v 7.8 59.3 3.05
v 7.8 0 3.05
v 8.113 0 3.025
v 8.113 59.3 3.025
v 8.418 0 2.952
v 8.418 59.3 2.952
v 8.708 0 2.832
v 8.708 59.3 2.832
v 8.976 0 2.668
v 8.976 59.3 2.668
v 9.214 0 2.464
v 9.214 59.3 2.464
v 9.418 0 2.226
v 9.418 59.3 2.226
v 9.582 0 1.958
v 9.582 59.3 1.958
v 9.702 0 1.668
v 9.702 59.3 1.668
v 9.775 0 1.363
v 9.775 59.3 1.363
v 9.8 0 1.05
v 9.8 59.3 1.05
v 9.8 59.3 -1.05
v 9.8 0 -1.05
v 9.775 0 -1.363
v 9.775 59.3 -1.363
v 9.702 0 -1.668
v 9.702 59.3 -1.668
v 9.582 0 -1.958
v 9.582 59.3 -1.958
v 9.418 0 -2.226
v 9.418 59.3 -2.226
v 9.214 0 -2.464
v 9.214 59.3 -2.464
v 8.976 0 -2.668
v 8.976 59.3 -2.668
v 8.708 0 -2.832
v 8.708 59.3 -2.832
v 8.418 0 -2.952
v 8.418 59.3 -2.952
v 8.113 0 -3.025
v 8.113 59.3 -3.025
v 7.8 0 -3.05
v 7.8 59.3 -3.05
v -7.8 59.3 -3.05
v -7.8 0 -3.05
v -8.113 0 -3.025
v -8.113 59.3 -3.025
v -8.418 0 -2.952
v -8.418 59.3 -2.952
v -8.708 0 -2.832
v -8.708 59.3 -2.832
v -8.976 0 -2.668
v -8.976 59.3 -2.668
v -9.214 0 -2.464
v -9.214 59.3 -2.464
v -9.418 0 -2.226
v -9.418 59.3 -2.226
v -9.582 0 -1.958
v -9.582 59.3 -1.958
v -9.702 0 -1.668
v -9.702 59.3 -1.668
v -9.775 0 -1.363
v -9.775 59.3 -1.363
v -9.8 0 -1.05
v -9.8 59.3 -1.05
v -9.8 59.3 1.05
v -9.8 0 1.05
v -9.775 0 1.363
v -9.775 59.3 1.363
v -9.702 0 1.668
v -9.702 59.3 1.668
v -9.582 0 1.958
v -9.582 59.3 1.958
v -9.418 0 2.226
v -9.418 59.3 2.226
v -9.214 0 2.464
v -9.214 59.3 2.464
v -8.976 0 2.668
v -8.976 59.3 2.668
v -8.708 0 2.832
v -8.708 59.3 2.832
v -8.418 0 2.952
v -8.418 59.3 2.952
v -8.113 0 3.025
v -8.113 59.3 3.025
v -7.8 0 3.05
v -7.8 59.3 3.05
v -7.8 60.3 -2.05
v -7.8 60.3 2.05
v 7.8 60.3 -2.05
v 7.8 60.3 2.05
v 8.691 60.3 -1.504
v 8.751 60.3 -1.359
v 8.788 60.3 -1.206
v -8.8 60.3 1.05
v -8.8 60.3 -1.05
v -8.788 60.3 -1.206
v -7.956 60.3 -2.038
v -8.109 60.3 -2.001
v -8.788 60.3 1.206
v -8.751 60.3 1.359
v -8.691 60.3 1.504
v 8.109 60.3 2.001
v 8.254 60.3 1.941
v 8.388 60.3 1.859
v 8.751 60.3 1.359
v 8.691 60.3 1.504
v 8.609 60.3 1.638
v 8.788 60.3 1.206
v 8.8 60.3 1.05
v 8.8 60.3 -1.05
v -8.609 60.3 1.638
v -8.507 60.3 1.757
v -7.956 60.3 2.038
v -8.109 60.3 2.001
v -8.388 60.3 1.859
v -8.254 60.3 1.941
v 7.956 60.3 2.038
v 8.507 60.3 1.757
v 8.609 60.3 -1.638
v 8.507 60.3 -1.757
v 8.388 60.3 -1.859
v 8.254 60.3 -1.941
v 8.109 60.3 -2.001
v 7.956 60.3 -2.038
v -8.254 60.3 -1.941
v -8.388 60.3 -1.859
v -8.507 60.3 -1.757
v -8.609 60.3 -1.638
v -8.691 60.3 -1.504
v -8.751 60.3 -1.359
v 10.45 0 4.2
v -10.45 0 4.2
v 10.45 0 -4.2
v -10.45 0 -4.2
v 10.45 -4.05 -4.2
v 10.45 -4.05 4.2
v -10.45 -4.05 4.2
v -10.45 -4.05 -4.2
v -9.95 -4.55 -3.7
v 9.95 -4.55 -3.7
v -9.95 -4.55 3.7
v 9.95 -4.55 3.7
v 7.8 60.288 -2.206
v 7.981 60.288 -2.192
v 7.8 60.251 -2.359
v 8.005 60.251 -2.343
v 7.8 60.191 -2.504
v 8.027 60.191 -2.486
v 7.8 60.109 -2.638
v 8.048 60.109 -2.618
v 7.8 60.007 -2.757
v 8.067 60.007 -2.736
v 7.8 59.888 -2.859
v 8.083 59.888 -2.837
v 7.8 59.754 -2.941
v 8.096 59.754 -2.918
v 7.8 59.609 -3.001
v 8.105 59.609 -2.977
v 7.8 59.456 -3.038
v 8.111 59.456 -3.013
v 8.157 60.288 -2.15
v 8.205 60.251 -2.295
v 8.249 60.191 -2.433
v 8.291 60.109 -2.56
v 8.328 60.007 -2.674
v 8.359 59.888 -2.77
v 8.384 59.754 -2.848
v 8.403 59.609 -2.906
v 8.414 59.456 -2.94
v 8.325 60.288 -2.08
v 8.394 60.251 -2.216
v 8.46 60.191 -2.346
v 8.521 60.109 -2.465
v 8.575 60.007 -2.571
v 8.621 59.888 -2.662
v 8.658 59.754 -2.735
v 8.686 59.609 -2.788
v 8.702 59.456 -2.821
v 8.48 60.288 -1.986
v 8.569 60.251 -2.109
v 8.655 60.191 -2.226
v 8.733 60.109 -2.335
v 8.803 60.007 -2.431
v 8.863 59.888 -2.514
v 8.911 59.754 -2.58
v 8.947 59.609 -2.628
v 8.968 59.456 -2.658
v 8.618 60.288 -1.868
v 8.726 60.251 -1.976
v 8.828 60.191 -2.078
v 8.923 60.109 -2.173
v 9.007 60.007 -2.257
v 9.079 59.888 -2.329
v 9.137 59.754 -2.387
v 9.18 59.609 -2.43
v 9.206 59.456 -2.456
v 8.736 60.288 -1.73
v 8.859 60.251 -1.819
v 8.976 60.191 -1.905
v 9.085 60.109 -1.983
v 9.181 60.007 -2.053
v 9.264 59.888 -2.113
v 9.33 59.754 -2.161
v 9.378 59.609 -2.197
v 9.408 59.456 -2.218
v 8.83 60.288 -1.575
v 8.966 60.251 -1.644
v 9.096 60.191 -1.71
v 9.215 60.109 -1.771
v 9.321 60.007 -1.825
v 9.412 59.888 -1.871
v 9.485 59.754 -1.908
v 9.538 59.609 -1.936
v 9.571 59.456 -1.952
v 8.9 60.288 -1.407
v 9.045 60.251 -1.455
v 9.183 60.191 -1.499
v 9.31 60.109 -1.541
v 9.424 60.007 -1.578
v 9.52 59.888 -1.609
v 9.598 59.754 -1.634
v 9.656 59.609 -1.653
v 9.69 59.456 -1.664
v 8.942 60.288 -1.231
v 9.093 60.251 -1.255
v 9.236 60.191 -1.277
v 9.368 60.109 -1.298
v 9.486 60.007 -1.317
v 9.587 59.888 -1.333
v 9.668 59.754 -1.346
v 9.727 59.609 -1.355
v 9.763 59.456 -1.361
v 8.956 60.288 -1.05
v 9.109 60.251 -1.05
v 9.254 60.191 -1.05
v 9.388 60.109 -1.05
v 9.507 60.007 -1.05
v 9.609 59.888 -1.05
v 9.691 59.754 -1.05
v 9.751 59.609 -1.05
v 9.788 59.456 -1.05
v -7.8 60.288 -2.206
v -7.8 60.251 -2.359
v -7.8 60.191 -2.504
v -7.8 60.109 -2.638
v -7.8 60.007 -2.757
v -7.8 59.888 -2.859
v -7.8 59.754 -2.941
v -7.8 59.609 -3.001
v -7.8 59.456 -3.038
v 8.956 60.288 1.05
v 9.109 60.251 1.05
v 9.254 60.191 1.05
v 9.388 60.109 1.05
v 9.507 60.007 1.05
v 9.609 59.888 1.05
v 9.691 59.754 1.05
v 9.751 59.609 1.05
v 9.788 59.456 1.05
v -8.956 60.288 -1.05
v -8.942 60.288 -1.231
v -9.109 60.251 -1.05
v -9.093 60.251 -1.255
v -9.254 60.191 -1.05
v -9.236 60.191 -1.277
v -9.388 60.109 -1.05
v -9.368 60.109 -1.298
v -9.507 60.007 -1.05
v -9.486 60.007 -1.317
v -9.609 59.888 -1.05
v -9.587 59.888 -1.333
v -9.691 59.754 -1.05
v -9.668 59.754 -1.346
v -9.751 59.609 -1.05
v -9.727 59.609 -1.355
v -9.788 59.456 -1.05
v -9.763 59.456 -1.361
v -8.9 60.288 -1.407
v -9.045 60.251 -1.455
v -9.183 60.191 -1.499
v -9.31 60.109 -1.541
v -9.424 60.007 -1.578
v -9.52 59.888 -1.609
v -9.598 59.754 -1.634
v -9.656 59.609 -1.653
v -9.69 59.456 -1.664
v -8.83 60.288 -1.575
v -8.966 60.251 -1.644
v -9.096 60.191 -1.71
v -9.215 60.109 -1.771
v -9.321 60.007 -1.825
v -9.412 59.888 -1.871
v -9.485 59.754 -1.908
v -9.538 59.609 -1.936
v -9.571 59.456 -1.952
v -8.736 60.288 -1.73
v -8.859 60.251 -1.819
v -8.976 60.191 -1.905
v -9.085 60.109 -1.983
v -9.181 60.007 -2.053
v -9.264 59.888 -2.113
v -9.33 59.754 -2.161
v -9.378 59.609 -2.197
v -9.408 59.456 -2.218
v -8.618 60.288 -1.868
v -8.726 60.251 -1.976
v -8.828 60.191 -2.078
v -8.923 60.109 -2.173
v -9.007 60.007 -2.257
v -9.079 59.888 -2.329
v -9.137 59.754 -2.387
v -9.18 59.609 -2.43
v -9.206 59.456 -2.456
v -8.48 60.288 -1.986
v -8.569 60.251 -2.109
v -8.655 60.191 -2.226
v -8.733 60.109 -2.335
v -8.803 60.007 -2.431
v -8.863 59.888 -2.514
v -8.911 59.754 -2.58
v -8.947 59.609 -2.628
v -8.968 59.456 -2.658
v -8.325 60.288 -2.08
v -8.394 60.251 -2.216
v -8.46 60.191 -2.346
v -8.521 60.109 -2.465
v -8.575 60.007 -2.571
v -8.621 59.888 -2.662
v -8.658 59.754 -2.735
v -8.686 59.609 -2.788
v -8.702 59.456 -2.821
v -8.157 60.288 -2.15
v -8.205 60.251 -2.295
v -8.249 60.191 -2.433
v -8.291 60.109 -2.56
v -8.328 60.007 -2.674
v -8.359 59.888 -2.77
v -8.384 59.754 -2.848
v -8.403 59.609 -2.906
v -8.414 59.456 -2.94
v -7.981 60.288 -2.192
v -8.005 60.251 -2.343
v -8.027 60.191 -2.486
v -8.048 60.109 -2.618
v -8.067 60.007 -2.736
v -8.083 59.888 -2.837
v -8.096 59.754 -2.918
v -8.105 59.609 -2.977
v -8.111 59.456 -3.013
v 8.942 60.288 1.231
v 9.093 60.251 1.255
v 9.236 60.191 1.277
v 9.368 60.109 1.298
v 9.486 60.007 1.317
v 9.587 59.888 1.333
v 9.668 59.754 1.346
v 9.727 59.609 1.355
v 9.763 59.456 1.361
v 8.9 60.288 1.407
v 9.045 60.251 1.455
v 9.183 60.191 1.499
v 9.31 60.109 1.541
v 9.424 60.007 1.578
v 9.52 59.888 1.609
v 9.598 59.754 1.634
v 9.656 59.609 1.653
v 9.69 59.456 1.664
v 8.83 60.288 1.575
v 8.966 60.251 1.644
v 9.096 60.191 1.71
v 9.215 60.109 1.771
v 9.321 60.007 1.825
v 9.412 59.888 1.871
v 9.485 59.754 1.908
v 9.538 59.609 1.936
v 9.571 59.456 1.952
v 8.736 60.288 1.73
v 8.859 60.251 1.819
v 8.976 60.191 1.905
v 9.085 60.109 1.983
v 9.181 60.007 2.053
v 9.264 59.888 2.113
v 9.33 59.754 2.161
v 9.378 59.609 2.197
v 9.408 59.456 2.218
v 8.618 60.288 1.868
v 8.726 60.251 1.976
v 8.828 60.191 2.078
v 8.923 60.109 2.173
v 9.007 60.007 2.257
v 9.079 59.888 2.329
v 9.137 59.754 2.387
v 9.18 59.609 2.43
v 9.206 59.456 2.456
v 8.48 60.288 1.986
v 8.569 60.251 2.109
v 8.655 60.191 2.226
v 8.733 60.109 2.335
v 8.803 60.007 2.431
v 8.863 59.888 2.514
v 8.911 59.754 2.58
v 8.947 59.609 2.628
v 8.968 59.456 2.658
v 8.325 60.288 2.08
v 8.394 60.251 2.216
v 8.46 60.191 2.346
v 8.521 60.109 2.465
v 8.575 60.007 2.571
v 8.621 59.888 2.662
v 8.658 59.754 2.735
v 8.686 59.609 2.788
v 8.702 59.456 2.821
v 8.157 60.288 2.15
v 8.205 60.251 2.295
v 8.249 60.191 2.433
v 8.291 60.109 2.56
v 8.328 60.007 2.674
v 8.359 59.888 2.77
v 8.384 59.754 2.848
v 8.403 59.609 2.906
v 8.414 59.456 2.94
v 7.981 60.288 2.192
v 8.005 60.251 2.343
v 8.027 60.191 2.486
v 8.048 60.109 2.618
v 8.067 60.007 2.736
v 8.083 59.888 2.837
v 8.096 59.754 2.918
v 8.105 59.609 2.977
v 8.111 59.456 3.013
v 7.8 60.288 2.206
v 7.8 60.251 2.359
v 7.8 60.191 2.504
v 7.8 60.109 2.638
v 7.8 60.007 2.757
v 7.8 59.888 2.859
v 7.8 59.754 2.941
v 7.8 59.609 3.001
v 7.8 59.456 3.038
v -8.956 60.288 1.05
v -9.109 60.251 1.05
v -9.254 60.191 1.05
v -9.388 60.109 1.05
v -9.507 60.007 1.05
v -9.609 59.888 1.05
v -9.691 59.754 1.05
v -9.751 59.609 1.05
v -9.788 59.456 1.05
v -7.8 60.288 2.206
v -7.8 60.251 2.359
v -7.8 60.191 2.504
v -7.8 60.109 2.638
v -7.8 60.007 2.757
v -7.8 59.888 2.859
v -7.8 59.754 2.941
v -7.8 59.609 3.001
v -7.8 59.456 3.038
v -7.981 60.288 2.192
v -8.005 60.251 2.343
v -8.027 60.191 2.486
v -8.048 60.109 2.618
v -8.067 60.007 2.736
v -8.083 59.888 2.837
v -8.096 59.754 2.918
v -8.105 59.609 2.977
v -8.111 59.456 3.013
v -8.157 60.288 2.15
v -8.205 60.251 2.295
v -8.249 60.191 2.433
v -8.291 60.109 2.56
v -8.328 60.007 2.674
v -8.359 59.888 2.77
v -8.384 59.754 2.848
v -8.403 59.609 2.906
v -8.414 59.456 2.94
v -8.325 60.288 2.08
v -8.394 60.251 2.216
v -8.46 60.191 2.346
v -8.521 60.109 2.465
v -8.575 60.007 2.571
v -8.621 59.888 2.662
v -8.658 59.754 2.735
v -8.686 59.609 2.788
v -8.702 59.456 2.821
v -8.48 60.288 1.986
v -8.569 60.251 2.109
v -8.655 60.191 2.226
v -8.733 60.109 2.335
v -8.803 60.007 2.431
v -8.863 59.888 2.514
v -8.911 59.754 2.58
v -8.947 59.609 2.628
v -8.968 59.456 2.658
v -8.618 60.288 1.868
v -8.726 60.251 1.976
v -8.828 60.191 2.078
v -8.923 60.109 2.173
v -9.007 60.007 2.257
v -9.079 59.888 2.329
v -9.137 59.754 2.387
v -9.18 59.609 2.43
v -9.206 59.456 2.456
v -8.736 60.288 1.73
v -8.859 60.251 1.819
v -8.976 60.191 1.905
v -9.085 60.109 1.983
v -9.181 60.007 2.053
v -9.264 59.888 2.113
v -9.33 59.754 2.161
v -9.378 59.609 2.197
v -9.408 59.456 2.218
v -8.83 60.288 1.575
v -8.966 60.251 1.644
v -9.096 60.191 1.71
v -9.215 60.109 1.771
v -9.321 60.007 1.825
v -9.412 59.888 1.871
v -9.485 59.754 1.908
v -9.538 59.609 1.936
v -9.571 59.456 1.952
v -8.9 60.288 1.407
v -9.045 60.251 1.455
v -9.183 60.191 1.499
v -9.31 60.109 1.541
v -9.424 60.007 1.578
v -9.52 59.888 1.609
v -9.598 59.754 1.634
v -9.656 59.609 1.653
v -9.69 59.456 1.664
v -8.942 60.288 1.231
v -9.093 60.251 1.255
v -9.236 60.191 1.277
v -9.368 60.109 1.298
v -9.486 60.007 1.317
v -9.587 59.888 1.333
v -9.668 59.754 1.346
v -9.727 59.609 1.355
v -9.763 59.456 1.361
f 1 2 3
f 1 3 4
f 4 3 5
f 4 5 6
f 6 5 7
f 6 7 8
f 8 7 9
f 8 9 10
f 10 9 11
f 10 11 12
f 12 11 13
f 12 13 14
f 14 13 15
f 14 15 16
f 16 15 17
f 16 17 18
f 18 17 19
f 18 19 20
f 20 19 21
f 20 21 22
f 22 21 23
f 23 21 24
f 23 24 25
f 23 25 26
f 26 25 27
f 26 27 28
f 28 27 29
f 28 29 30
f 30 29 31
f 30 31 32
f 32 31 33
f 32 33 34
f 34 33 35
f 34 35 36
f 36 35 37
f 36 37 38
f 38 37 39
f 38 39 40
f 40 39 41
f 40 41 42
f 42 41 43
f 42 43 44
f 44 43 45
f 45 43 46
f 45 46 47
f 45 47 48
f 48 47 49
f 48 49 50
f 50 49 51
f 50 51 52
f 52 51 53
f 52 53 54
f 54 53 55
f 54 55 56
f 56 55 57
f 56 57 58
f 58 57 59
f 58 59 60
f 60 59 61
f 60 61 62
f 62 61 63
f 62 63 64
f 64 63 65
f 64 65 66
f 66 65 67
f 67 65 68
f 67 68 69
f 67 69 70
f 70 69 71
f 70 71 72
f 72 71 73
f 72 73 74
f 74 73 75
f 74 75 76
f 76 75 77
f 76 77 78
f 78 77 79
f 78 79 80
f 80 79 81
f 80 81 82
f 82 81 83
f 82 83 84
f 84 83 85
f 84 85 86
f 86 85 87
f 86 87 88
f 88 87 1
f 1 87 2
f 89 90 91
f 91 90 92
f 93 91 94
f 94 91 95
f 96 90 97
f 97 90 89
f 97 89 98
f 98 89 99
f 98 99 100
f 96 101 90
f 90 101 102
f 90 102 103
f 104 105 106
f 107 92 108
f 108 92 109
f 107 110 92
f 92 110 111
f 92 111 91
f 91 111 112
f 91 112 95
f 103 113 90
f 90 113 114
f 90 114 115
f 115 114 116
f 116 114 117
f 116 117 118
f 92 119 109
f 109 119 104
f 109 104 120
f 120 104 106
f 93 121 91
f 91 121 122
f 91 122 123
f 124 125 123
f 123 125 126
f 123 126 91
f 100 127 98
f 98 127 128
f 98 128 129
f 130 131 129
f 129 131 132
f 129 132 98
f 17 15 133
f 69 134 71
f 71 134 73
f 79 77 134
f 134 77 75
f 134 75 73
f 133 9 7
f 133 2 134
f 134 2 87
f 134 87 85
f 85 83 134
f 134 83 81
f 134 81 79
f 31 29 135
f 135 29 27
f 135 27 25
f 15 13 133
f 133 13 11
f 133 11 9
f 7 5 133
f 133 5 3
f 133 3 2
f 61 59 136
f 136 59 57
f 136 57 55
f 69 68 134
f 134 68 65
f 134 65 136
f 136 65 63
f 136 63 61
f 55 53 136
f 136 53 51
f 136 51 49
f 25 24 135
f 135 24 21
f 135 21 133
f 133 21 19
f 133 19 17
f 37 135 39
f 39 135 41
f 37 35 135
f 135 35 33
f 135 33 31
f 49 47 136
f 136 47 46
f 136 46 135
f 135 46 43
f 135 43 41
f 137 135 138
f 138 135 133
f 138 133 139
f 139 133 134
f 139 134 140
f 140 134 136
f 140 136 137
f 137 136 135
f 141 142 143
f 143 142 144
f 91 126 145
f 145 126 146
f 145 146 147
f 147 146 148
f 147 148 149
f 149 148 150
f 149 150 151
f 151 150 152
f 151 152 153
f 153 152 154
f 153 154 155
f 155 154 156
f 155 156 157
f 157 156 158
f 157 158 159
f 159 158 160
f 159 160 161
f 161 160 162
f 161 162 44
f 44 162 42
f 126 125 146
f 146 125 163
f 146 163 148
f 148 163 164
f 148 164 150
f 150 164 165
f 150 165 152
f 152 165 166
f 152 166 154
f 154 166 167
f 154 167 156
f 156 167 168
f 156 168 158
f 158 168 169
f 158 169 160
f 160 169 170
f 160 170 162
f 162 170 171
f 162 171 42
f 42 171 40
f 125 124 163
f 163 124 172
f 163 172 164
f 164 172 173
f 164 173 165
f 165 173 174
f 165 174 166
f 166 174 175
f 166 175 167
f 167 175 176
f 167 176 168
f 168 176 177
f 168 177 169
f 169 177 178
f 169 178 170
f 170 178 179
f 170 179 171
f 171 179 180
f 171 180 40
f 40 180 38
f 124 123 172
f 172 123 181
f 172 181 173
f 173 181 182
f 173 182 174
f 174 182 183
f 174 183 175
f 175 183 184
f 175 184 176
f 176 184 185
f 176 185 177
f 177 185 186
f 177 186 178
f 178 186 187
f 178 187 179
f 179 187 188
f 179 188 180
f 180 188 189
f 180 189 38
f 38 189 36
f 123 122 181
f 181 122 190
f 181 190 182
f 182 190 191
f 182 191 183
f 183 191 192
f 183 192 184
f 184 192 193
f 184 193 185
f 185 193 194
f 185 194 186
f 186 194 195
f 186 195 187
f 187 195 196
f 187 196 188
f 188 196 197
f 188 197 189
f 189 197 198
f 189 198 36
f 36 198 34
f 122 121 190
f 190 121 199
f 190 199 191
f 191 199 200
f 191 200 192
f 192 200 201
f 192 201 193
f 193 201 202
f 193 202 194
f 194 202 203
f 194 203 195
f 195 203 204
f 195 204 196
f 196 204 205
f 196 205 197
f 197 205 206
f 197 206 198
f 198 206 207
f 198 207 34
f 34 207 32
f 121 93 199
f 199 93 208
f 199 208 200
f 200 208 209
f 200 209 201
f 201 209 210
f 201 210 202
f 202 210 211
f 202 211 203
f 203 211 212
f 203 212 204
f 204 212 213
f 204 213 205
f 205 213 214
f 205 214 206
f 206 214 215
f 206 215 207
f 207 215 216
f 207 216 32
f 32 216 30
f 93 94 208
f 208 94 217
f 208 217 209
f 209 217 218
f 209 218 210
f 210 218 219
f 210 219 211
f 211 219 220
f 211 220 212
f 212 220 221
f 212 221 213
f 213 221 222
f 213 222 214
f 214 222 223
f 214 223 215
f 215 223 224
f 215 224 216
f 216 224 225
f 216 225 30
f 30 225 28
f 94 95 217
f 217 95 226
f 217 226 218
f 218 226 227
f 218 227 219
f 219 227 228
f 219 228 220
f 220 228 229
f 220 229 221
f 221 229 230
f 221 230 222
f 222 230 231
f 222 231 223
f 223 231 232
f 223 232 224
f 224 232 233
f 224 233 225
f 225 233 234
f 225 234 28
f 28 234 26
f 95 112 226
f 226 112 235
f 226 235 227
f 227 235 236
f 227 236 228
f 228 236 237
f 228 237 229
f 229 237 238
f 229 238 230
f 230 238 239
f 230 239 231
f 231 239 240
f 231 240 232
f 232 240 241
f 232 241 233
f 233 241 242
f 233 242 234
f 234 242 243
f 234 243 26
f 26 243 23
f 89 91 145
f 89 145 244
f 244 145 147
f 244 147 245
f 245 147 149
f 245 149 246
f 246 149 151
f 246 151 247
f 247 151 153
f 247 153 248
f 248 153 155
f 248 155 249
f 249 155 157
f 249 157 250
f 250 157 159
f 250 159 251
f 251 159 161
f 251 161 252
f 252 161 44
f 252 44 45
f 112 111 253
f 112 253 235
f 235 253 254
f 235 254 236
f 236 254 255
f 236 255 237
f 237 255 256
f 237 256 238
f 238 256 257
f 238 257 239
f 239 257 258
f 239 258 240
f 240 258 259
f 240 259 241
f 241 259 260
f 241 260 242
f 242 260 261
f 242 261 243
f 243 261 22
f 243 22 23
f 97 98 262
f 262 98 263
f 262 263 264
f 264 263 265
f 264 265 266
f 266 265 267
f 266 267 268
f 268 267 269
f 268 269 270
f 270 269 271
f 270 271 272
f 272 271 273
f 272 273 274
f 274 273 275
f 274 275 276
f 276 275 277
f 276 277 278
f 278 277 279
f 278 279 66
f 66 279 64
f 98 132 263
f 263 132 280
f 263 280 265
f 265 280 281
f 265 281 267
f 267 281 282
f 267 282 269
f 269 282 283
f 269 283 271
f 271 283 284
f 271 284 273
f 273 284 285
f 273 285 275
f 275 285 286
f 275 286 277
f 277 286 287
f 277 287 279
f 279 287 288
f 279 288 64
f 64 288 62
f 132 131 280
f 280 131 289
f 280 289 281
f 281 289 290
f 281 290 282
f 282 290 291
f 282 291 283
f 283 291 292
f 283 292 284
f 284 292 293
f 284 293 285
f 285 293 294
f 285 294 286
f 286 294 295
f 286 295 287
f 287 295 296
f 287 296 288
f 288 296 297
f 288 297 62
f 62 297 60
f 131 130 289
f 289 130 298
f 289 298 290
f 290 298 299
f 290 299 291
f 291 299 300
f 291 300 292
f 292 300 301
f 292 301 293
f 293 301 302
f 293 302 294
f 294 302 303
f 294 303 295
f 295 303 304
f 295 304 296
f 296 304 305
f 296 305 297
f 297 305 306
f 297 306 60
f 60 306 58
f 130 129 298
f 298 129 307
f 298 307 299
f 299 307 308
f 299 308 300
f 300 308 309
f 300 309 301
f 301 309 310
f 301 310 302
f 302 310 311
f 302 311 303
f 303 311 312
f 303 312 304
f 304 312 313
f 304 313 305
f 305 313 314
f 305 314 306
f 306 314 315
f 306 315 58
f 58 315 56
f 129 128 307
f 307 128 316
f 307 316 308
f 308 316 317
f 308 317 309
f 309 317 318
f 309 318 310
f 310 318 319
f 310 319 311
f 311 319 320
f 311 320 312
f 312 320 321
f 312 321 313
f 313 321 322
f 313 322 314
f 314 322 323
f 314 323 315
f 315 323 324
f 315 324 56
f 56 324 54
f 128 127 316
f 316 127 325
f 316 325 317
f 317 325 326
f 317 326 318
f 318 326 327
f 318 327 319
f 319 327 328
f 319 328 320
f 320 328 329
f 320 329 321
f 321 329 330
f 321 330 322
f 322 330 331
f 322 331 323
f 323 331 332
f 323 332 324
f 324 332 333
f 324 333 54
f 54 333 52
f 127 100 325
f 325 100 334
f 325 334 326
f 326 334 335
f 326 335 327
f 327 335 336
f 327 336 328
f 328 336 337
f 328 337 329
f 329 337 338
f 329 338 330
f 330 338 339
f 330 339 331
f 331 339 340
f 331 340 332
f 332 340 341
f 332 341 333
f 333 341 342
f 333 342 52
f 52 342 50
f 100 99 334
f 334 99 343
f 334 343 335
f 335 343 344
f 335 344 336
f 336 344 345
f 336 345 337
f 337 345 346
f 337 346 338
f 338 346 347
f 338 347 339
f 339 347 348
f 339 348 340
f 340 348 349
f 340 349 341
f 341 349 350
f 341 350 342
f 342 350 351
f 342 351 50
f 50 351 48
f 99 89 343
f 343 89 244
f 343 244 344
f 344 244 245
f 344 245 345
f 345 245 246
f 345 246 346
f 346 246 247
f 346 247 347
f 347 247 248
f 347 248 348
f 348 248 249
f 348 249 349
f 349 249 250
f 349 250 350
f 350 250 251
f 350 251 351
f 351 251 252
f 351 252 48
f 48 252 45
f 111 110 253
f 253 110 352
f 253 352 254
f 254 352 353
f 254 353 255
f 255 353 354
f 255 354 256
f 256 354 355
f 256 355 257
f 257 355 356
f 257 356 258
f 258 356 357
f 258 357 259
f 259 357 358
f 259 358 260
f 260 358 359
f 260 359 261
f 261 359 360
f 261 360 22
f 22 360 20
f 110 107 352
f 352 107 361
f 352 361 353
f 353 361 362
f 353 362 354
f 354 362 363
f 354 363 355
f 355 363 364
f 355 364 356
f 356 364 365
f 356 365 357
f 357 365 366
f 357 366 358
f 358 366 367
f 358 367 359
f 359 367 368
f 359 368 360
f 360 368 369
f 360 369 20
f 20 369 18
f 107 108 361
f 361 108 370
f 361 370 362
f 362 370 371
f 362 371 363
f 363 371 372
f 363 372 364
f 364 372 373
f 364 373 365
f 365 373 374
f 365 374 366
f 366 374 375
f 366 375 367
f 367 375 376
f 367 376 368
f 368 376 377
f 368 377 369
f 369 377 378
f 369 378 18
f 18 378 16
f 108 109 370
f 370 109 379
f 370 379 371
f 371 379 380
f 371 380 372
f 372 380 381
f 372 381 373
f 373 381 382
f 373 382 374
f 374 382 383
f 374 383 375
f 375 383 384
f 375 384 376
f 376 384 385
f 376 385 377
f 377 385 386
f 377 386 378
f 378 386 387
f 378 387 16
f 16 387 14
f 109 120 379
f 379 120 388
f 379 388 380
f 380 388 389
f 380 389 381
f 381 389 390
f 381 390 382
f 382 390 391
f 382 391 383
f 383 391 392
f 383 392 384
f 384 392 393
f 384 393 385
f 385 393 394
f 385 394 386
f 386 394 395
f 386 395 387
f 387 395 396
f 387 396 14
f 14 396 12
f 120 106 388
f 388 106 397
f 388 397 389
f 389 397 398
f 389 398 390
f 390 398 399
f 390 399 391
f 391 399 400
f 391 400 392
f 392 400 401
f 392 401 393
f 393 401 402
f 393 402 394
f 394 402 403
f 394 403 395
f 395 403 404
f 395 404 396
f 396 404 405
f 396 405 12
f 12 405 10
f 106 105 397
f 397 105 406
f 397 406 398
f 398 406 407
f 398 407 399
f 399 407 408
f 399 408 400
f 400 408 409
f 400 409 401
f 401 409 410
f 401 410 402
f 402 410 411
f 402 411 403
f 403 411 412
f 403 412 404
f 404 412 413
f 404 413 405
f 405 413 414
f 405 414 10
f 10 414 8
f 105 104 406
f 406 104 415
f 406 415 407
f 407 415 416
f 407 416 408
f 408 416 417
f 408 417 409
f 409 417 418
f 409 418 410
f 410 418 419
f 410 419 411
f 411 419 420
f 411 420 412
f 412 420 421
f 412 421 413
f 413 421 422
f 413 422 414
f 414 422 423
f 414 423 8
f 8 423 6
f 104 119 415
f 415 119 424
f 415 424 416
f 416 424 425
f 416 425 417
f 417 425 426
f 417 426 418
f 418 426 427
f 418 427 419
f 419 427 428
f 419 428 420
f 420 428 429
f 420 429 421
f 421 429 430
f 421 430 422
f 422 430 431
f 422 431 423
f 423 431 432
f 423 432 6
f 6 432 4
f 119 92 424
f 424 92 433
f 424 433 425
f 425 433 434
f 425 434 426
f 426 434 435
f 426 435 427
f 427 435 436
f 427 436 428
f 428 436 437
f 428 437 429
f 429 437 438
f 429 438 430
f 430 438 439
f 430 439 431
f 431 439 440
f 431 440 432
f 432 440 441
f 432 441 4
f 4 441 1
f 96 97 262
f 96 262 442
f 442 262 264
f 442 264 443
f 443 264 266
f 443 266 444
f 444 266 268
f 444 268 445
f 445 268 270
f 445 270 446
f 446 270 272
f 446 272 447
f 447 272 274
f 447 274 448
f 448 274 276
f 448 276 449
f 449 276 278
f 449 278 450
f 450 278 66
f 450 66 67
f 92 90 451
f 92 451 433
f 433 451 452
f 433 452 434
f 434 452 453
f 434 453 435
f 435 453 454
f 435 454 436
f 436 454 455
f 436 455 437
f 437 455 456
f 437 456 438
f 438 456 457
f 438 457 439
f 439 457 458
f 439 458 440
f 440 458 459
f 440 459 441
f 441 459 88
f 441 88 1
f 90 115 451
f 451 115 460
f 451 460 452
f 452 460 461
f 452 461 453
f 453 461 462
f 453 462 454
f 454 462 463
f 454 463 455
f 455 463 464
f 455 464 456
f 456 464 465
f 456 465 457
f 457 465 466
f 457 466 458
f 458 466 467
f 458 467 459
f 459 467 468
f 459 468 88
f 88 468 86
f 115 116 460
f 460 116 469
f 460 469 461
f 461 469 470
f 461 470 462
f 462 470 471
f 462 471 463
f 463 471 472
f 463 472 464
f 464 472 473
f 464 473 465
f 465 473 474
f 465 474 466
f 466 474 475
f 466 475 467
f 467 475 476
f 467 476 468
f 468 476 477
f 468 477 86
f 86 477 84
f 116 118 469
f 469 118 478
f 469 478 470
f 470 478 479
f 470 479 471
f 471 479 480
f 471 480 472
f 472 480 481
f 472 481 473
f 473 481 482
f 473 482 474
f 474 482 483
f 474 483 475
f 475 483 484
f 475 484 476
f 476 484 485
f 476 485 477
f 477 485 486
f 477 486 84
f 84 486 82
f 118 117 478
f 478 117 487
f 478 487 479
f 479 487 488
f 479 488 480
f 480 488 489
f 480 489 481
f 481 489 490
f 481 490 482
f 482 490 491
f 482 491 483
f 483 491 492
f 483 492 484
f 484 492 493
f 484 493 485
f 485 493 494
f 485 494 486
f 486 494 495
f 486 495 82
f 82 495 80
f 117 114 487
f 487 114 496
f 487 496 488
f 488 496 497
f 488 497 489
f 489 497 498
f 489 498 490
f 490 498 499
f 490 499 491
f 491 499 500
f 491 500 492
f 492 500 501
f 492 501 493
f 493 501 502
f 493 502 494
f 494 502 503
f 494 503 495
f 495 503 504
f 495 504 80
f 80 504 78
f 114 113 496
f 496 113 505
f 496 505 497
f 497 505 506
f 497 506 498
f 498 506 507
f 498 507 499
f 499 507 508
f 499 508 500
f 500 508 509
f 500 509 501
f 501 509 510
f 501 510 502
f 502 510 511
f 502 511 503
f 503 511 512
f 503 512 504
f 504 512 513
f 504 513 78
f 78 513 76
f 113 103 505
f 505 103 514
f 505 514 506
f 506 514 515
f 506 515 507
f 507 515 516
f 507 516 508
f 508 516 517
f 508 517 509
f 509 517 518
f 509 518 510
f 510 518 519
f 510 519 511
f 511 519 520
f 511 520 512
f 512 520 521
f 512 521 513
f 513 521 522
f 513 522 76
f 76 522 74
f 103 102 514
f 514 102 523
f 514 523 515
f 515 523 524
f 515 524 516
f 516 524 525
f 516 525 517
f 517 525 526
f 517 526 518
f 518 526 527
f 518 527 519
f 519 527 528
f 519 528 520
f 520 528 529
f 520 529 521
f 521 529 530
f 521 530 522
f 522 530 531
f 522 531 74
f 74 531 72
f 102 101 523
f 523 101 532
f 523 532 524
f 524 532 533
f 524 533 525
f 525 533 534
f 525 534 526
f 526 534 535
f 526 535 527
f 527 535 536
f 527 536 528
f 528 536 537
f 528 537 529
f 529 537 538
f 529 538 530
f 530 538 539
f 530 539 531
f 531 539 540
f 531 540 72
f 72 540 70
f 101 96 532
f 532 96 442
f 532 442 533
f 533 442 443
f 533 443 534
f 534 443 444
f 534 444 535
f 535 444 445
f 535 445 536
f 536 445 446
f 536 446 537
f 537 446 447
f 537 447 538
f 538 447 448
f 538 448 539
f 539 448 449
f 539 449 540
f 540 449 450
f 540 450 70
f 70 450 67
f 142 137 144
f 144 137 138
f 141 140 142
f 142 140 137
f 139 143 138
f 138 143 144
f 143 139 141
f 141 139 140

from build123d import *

# Parameters (mm, degrees)
BOSS_EXTRUDE1_DEPTH = 60.3
SKETCH2_W           = 20.9
SKETCH2_H           = 8.4
BOSS_EXTRUDE2_DEPTH = 4.55
FILLET1_R           = 1
CHAMFER1_SIZE       = 0.5


with BuildPart() as part:
    # Sketch1 → Boss-Extrude1 (new body)
    with BuildSketch(Plane(origin=(0, 0, 0), x_dir=(1, 0, 0), z_dir=(0, 1, 0))):
        with BuildLine():
            Line((-7.8, 3.05), (7.8, 3.05))
            ThreePointArc((7.8, 3.05), (9.214213562, 2.464213562), (9.8, 1.05))
            Line((9.8, 1.05), (9.8, -1.05))
            ThreePointArc((9.8, -1.05), (9.214213562, -2.464213562), (7.8, -3.05))
            Line((7.8, -3.05), (-7.8, -3.05))
            ThreePointArc((-7.8, -3.05), (-9.214213562, -2.464213562), (-9.8, -1.05))
            Line((-9.8, -1.05), (-9.8, 1.05))
            ThreePointArc((-9.8, 1.05), (-9.214213562, 2.464213562), (-7.8, 3.05))
        make_face()
    extrude(amount=BOSS_EXTRUDE1_DEPTH)

    # Sketch2 → Boss-Extrude2 (add)
    with BuildSketch(Plane(origin=(0, 0, 0), x_dir=(1, 0, 0), z_dir=(0, 1, 0))):
        Rectangle(SKETCH2_W, SKETCH2_H)
    extrude(amount=-BOSS_EXTRUDE2_DEPTH)

    # Fillet1
    fillet1_edges = [part.edges().sort_by_distance(p)[0] for p in [
        (9.214213562, 60.3, -2.464213562),
        (0, 60.3, -3.05),
        (-9.214213562, 60.3, -2.464213562),
        (-9.8, 60.3, 0),
        (-9.214213562, 60.3, 2.464213562),
        (0, 60.3, 3.05),
        (9.214213562, 60.3, 2.464213562),
        (9.8, 60.3, 0),
    ]]
    fillet(fillet1_edges, radius=FILLET1_R)

    # Chamfer1
    chamfer1_edges = [part.edges().sort_by_distance(p)[0] for p in [
        (10.45, -4.55, 0),
        (0, -4.55, 4.2),
        (-10.45, -4.55, 0),
        (0, -4.55, -4.2),
    ]]
    chamfer(chamfer1_edges, length=CHAMFER1_SIZE)


solid = part.part
